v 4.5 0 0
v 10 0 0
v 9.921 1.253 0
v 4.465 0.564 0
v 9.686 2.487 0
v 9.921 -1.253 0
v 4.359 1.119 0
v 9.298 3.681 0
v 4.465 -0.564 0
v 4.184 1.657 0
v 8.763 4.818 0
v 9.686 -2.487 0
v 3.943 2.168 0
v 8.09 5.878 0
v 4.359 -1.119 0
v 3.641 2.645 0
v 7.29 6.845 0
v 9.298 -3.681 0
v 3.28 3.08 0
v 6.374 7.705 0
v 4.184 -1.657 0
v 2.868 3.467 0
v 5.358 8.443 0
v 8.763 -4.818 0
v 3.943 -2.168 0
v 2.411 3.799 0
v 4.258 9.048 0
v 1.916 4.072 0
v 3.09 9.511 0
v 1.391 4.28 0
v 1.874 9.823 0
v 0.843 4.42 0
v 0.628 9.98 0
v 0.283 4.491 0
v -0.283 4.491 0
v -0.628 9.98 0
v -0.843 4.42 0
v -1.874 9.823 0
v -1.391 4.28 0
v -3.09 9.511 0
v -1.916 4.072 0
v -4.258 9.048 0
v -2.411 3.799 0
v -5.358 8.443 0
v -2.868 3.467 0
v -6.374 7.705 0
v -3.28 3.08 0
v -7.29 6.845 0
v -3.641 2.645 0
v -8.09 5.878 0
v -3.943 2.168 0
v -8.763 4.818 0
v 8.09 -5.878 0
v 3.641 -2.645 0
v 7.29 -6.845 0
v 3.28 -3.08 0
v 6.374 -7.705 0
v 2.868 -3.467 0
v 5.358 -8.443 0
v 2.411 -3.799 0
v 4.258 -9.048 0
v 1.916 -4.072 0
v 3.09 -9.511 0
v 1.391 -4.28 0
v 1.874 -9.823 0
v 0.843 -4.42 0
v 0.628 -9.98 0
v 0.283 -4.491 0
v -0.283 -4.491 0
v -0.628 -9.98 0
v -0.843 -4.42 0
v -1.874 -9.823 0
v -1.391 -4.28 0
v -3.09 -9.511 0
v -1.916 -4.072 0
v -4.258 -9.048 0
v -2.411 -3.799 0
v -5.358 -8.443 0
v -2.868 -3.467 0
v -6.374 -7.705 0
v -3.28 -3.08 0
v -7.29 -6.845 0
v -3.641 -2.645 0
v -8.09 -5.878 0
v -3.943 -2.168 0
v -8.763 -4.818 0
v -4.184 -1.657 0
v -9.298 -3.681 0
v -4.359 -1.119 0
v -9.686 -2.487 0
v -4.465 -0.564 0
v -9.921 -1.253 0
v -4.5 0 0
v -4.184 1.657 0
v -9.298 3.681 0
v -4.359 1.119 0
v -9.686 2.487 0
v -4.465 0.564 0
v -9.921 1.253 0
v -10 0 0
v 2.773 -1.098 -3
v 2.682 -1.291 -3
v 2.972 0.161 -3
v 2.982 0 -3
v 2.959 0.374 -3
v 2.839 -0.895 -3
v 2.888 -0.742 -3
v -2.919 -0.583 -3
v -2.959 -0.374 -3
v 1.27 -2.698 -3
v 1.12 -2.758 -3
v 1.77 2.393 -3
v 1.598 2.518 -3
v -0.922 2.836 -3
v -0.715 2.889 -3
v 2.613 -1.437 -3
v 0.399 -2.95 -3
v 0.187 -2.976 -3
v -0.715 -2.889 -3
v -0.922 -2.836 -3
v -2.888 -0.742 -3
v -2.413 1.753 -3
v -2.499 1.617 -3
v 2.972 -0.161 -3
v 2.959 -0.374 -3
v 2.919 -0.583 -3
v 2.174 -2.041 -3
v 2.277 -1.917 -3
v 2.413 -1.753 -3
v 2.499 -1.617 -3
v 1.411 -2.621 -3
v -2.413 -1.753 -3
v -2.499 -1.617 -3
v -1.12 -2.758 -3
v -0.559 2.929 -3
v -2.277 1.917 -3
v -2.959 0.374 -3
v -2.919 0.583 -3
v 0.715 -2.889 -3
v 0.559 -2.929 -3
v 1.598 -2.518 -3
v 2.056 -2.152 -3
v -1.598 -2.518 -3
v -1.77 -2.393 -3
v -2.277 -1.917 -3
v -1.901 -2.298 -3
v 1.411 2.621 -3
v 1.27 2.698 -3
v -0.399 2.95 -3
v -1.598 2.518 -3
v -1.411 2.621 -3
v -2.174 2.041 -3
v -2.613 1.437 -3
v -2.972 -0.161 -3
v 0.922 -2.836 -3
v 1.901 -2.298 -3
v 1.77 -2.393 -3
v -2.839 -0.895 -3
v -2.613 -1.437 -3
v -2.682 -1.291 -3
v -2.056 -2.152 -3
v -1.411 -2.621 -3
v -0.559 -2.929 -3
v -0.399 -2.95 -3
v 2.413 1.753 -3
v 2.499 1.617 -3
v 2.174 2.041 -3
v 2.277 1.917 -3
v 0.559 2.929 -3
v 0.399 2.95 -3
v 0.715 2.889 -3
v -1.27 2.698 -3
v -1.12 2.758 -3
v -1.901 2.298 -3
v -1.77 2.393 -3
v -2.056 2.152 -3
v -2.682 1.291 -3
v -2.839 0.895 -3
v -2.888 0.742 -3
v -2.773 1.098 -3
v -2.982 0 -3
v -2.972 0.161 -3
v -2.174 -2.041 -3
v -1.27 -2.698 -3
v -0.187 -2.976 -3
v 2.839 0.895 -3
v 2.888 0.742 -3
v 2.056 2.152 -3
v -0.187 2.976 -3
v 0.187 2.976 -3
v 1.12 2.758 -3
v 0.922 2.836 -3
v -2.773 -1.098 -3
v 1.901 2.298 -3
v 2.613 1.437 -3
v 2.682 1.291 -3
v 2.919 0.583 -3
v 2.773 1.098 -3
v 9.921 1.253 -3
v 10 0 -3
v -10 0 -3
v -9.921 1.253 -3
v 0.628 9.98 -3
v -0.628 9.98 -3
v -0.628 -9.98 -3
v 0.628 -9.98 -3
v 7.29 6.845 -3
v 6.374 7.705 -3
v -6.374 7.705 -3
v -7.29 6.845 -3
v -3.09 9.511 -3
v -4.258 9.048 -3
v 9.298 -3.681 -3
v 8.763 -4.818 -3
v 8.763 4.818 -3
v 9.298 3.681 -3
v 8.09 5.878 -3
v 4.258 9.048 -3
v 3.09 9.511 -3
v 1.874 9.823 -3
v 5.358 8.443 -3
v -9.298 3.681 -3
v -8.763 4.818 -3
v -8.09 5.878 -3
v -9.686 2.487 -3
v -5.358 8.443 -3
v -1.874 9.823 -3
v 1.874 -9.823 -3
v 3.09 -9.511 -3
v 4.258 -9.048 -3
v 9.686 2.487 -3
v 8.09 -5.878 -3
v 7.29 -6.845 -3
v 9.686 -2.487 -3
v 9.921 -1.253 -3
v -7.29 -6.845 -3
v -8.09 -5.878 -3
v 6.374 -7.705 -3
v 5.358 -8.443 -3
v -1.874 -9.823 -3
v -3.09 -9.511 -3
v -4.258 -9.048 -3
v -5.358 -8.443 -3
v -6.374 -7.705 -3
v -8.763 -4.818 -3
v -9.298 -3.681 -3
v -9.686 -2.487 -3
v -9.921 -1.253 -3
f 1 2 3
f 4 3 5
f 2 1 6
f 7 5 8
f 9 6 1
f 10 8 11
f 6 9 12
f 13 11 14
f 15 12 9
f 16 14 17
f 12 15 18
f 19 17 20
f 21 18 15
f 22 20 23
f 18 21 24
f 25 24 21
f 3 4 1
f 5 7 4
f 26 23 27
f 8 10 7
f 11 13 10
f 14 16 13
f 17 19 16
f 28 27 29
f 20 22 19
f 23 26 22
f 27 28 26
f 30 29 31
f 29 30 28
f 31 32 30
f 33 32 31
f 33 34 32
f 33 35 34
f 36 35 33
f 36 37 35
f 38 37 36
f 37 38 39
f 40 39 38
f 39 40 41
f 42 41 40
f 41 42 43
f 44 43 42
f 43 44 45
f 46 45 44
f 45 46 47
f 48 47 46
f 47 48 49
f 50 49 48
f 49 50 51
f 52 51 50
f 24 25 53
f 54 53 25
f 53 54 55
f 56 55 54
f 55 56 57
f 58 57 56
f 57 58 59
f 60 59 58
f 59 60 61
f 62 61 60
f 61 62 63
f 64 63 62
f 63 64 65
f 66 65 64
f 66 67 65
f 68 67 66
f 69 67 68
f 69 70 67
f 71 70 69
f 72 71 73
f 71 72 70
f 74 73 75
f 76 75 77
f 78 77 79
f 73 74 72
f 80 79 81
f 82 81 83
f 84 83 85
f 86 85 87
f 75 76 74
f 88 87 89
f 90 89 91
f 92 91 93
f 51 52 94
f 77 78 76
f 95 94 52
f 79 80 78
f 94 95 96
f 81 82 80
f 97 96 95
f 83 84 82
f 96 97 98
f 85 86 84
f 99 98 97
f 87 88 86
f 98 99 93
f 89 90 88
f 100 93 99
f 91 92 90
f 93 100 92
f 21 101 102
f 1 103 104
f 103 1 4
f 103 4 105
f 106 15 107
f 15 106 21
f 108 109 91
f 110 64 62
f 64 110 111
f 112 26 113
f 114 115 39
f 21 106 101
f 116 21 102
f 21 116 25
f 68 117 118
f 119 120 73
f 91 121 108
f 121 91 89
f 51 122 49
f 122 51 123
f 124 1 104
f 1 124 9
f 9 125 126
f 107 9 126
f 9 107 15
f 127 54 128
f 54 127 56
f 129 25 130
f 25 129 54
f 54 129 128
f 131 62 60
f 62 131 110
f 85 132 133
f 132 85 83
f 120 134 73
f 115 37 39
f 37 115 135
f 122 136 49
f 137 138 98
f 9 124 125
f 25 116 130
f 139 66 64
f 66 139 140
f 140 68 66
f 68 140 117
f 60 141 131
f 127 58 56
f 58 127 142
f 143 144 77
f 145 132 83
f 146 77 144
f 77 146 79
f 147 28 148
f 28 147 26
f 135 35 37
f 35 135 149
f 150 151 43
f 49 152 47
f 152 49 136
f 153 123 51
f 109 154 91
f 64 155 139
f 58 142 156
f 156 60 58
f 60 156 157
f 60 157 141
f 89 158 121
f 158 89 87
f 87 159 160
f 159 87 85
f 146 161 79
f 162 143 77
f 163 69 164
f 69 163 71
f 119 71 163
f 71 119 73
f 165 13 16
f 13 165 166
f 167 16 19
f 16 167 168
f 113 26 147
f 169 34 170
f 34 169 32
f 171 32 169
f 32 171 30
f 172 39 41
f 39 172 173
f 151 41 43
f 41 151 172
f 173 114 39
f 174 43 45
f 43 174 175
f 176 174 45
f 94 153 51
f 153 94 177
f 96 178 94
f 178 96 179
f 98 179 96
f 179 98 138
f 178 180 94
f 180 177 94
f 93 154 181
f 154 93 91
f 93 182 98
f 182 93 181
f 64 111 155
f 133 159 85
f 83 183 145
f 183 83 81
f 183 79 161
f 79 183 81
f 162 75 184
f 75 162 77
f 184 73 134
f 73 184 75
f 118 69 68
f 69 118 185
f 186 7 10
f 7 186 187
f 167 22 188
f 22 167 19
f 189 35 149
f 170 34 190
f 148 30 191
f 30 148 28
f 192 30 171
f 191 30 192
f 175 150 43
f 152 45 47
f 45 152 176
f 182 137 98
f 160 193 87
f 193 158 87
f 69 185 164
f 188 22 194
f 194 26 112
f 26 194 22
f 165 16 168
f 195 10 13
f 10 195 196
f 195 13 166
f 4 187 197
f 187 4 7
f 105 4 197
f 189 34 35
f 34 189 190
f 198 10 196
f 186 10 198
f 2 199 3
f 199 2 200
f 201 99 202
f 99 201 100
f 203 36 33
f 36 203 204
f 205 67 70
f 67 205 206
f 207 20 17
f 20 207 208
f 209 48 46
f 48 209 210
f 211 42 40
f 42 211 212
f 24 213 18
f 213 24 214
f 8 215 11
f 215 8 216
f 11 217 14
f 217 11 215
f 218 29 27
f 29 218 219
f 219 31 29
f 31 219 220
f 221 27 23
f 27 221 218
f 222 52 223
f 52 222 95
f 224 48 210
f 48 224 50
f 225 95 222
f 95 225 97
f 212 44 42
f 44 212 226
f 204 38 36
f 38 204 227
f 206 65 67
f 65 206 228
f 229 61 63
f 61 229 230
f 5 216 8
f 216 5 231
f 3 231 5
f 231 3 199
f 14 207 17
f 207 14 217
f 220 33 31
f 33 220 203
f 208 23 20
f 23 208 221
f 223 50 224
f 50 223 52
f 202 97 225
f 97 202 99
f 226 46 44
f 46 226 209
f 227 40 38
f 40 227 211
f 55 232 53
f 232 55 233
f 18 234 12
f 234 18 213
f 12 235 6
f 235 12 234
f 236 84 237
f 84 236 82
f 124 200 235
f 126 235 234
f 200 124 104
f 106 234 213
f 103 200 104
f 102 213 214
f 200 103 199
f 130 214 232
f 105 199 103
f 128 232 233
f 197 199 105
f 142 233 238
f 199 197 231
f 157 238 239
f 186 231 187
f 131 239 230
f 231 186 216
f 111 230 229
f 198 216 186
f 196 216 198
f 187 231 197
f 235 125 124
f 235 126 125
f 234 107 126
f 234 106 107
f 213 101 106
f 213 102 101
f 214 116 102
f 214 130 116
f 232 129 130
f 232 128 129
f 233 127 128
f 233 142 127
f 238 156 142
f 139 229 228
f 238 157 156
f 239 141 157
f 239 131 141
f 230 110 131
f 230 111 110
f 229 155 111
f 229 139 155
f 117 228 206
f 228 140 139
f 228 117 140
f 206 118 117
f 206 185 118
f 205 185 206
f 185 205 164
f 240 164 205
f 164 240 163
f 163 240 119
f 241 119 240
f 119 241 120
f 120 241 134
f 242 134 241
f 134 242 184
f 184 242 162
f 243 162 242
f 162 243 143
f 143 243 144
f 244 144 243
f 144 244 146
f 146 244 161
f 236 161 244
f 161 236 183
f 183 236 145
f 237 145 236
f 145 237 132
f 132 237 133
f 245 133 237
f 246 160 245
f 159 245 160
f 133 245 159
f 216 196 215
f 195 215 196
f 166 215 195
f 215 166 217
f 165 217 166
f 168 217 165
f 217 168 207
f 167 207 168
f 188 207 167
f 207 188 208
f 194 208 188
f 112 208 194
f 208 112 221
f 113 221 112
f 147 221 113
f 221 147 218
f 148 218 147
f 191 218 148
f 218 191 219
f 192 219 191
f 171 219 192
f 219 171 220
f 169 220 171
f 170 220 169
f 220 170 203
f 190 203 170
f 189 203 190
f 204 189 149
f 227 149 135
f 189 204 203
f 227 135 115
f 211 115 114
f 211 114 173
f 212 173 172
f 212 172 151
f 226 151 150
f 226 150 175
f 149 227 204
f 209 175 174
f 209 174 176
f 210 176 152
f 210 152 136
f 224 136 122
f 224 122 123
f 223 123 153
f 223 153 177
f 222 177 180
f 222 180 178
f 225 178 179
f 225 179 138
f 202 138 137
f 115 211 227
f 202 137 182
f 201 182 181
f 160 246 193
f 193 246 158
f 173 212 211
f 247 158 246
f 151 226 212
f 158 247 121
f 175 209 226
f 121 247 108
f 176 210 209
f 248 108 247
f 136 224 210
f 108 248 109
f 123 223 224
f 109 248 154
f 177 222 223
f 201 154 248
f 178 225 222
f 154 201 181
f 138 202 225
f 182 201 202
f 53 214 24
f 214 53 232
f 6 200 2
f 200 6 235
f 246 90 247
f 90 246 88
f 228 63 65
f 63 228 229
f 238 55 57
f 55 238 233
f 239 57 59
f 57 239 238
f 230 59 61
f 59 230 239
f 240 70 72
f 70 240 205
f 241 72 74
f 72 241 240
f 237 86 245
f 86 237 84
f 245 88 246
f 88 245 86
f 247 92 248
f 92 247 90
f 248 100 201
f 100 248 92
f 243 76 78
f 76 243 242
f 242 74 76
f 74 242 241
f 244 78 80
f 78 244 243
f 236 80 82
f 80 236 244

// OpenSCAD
$fn = 50;


difference() {
	union() {
		translate(v = [0, 0, -3.0000000000]) {
			cylinder(h = 3, r = 10.0000000000);
		}
		cylinder(h = 0, r = 20.0000000000);
	}
	union() {
		translate(v = [0, 0, 0]) {
			rotate(a = [0, 0, 0]) {
				difference() {
					union() {
						#translate(v = [0, 0, -3.0000000000]) {
							cylinder(h = 3, r = 2.2500000000);
						}
						#translate(v = [0, 0, -4.2000000000]) {
							cylinder(h = 4.2000000000, r1 = 2.3750000000, r2 = 4.5000000000);
						}
						#translate(v = [0, 0, -3.0000000000]) {
							cylinder(h = 3, r = 2.3750000000);
						}
						#translate(v = [0, 0, -3.0000000000]) {
							cylinder(h = 3, r = 2.2500000000);
						}
					}
					union();
				}
			}
		}
	}
}
